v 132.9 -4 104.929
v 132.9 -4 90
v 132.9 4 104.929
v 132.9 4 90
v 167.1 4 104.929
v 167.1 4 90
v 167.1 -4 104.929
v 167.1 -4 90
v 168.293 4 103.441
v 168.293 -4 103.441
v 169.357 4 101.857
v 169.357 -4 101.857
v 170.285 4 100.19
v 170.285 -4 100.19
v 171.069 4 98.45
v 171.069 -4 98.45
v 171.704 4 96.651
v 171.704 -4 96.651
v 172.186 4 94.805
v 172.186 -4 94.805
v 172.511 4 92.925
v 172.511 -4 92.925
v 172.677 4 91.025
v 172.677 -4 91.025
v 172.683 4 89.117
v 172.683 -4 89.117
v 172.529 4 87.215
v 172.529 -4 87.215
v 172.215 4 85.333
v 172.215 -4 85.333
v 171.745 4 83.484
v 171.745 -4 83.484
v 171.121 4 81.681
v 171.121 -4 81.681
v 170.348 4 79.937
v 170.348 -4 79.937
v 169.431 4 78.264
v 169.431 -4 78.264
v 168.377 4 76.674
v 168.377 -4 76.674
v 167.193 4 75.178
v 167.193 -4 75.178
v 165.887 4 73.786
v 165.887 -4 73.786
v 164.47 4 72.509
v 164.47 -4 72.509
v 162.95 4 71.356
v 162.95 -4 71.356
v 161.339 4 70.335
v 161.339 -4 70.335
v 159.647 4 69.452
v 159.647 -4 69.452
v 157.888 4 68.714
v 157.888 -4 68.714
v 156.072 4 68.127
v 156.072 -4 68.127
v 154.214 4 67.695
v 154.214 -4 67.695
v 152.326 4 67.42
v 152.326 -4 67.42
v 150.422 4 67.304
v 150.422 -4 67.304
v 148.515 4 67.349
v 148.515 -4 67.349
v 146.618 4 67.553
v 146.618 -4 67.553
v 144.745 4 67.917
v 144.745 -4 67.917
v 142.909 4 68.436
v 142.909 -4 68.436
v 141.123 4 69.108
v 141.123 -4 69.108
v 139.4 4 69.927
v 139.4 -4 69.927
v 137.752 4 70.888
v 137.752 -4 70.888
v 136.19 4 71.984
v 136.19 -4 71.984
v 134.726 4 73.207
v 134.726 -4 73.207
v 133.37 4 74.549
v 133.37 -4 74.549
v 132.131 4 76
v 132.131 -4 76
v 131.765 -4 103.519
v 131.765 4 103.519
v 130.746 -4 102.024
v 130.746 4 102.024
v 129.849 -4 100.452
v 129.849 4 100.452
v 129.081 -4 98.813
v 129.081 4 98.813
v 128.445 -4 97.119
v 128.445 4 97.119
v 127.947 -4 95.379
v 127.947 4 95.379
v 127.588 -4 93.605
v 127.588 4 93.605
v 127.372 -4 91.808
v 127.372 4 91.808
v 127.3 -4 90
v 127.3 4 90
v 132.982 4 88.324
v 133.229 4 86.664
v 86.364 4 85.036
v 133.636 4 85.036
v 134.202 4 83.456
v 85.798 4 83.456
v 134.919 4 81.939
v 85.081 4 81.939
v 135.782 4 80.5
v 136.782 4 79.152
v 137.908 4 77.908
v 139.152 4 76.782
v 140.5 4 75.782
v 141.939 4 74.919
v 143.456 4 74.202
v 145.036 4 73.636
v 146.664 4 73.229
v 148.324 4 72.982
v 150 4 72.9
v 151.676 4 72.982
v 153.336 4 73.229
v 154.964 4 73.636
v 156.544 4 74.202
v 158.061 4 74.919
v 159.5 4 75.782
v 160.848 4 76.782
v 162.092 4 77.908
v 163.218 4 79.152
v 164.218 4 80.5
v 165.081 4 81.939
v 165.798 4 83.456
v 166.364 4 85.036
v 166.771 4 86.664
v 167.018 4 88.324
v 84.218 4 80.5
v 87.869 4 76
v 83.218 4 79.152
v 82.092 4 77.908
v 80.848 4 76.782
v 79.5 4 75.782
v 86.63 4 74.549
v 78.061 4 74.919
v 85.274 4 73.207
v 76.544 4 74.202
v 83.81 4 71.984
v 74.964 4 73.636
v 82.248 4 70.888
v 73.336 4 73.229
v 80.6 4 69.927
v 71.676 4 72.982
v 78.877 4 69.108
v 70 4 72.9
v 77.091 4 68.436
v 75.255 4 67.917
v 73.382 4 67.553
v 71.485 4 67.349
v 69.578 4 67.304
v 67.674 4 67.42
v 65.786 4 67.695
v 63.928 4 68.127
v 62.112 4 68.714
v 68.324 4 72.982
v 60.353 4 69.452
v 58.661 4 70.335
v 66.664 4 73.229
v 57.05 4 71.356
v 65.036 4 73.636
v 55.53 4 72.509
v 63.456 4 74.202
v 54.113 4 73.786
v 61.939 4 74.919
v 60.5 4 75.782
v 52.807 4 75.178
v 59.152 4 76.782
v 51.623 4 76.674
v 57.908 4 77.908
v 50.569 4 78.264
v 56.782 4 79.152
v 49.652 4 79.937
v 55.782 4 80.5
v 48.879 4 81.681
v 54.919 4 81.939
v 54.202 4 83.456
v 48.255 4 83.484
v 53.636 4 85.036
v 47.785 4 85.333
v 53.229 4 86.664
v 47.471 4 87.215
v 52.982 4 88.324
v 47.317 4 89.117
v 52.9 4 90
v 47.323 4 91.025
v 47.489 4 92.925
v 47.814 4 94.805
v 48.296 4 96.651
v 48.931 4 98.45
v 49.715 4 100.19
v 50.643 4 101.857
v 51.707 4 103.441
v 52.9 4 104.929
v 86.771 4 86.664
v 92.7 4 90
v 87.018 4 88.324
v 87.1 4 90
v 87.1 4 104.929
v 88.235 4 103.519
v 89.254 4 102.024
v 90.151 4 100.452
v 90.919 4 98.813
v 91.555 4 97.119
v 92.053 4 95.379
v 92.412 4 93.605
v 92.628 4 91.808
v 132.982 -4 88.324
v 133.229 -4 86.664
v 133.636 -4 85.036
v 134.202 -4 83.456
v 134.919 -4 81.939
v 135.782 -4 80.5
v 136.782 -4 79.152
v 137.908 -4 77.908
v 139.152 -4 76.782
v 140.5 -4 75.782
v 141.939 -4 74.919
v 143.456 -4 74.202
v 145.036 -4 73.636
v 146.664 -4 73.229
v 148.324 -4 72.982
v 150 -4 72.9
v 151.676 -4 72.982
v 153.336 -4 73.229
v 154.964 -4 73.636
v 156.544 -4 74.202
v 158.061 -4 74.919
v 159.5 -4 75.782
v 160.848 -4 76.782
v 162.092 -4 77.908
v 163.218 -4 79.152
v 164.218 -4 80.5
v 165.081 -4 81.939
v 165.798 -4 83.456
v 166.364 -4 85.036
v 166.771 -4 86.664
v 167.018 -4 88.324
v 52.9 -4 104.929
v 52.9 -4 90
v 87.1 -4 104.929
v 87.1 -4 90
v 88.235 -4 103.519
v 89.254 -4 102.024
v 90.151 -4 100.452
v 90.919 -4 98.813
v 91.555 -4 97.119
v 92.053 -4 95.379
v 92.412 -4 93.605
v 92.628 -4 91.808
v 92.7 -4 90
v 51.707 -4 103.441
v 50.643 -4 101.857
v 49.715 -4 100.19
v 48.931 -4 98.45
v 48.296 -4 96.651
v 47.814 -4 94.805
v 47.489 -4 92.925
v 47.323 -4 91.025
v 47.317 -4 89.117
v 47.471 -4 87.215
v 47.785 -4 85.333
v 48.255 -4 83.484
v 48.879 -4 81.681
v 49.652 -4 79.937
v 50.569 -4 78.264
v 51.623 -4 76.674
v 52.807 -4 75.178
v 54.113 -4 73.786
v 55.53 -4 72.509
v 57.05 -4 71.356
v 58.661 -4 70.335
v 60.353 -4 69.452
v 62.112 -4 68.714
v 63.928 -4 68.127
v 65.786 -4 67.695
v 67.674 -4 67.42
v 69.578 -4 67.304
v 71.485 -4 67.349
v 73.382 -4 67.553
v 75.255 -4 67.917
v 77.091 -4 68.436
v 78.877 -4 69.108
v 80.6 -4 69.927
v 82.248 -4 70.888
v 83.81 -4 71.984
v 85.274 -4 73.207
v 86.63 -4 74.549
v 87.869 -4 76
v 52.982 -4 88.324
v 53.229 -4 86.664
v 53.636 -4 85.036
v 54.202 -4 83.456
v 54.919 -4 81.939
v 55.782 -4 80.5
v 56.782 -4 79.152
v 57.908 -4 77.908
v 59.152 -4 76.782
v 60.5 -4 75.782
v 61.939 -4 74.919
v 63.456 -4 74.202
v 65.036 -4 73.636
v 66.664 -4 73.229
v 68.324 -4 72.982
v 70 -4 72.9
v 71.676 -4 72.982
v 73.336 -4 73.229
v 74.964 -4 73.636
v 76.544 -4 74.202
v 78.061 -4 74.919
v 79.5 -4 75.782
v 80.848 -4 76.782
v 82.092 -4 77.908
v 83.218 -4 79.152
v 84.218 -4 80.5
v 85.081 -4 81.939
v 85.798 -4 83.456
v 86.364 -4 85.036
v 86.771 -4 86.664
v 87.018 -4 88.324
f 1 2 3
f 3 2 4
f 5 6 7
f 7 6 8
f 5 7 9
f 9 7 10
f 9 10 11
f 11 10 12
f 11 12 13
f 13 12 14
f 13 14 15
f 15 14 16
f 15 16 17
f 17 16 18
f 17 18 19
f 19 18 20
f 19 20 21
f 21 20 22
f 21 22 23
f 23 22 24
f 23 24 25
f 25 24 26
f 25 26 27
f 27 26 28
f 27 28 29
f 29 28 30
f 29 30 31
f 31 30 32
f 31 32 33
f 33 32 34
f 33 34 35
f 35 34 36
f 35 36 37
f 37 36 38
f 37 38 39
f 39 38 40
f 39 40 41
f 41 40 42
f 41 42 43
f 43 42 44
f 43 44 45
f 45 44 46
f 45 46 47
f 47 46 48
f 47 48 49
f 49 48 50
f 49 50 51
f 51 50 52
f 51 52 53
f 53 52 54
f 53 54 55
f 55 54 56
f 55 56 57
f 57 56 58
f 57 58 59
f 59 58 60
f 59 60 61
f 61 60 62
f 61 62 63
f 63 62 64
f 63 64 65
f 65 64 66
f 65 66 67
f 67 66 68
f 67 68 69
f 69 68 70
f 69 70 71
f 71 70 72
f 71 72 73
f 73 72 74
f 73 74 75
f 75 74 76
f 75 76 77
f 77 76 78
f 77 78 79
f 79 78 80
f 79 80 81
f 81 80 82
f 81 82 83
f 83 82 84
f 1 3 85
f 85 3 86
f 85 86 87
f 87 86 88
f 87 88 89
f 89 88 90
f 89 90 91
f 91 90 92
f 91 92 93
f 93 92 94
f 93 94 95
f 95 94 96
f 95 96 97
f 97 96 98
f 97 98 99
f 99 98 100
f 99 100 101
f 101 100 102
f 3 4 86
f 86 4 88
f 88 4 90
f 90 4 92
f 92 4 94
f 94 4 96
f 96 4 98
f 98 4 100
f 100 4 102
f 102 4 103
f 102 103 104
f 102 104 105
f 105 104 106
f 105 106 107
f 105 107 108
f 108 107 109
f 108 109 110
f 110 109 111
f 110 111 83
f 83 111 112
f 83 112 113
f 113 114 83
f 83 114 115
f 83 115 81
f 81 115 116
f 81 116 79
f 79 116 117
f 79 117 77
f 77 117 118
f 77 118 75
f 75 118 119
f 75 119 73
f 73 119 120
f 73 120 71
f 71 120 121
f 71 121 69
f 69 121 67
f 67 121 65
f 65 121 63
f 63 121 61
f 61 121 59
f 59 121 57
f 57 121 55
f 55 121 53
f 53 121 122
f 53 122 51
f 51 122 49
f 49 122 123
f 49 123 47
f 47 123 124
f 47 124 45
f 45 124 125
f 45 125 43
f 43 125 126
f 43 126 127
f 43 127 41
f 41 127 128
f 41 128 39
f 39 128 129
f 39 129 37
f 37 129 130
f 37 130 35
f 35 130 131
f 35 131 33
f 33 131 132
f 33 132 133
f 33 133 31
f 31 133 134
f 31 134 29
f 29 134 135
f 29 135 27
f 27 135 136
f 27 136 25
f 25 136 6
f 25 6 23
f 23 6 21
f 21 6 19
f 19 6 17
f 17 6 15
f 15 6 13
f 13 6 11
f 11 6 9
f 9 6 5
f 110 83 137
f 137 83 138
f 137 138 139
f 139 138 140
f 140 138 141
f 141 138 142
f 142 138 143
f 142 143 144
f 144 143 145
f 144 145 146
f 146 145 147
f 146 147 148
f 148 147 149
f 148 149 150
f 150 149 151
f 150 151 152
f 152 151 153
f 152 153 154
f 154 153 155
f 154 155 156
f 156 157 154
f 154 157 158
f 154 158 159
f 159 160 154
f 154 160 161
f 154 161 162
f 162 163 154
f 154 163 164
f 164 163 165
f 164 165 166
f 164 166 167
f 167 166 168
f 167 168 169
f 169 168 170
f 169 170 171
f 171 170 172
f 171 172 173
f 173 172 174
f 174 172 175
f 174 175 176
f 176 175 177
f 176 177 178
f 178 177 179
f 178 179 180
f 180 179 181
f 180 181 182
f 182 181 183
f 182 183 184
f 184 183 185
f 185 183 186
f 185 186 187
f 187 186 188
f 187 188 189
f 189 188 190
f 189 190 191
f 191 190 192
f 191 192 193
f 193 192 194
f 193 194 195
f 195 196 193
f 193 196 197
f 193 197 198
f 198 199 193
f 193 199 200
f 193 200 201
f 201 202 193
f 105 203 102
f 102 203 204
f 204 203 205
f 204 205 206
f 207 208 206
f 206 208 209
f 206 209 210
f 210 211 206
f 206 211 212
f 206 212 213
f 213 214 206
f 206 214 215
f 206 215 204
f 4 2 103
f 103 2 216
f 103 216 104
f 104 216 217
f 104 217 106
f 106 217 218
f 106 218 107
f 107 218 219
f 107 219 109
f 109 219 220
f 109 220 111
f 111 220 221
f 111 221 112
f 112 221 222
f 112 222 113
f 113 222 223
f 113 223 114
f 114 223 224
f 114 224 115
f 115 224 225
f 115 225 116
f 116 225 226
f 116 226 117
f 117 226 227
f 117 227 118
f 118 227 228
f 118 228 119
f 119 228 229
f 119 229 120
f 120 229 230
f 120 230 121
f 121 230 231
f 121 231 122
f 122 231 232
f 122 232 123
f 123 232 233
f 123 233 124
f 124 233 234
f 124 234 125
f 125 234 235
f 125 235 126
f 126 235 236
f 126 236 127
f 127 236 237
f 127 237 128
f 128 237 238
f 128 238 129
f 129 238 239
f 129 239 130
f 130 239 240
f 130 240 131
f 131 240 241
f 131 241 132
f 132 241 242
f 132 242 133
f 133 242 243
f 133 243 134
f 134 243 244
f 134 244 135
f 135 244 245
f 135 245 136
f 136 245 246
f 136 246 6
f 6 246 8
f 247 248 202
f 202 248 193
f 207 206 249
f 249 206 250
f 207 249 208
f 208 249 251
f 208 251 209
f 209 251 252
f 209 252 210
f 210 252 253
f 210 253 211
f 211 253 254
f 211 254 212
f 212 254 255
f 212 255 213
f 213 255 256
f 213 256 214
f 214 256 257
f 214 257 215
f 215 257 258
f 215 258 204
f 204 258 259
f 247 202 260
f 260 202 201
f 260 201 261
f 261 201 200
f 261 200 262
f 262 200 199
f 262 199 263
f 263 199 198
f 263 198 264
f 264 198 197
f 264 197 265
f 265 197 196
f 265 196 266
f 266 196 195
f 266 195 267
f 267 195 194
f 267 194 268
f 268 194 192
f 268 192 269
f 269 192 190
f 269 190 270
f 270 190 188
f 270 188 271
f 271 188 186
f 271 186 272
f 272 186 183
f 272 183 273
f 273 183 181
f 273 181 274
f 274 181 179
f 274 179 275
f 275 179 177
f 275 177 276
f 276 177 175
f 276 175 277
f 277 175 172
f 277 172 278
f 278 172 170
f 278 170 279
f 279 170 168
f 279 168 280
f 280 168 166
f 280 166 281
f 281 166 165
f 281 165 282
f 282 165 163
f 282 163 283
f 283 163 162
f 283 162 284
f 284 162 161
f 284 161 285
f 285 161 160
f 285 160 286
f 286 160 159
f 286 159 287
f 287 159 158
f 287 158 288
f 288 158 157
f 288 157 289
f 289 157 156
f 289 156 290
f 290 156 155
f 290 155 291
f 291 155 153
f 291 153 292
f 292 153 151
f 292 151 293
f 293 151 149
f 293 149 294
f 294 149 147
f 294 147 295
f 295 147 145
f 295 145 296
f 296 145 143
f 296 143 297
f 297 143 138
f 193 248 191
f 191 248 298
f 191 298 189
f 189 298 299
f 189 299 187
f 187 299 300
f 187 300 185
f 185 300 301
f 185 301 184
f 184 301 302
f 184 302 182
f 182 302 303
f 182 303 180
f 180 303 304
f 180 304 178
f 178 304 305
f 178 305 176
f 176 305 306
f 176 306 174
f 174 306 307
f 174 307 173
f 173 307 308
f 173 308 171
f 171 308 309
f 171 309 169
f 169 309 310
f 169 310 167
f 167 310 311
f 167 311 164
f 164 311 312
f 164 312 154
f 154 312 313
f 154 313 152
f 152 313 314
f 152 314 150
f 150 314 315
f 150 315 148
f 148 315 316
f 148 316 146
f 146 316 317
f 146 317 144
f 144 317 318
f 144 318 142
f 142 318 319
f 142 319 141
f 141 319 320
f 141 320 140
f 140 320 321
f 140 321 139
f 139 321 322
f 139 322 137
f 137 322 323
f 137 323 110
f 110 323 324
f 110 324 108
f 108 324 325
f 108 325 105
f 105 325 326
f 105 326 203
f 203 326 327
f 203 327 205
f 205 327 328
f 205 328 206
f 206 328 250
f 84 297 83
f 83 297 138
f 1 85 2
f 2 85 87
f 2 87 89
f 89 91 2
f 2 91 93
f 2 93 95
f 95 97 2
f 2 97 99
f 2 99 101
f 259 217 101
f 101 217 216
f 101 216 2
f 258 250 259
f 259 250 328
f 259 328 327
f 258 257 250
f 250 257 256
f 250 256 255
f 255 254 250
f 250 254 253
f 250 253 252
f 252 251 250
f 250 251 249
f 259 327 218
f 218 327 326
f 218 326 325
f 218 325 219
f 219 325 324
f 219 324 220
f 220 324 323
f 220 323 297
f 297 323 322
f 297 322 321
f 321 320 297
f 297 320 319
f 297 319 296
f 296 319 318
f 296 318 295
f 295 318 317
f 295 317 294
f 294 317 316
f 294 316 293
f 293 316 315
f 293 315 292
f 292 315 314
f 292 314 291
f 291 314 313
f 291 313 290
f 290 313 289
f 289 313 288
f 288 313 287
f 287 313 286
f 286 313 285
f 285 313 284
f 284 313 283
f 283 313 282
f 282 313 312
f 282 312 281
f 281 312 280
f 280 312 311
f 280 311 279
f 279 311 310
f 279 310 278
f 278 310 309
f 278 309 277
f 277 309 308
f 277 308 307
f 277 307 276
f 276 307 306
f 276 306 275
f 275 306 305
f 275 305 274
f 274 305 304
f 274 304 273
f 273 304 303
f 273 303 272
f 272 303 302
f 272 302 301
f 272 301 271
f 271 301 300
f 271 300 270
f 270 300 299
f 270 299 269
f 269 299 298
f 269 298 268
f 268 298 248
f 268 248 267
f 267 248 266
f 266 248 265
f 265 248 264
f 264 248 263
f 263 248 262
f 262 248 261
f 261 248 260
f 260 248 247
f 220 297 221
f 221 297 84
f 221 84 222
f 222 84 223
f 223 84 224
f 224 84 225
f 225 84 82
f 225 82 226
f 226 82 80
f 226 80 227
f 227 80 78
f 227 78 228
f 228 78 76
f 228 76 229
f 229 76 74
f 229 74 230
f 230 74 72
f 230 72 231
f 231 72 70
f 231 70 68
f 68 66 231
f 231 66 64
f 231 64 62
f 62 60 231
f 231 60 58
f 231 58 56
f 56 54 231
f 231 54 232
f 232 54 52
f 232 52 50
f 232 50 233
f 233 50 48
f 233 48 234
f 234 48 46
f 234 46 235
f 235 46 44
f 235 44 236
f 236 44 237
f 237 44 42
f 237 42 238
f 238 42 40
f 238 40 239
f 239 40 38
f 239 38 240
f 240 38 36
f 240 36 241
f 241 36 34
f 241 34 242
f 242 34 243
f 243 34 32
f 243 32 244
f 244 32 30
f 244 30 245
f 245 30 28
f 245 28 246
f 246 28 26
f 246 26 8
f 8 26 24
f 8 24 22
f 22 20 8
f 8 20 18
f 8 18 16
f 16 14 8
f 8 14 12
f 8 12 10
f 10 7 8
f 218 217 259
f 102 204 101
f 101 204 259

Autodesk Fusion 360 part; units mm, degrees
sketch "Coupon chord" plane through (0, 0, 0) normal (0, 1, 0) x (1, 0, 0)
  line L0 (70, -76) -> (150, -76)
  line L1 (150, -76) -> (150, -90)
  line L2 (150, -90) -> (70, -90)
  line L3 (70, -90) -> (70, -76)
  dimension "d52" = 70
  dimension "d53" = 76
  dimension "d55" = 90
extrude "Coupon chord (1)" add sketch "Coupon chord" along normal mid plane 8
sketch "Saddle boss x=70" plane through (0, 0, 0) normal (0, 1, 0) x (1, 0, 0)
  circle A0 centre (70, -90) radius 22.7
  dimension "d58" = 70
  dimension "d59" = 90
  dimension "d60" = 45.4
extrude "Saddle boss x=70 (1)" add sketch "Saddle boss x=70" along normal mid plane 8
sketch "Saddle boss x=150" plane through (0, 0, 0) normal (0, 1, 0) x (1, 0, 0)
  circle A0 centre (150, -90) radius 22.7
  dimension "d64" = 90
  dimension "d65" = 45.4
extrude "Saddle boss x=150 (1)" add sketch "Saddle boss x=150" along normal mid plane 8
sketch "Rod pocket x=70" plane through (0, 0, 0) normal (0, 1, 0) x (1, 0, 0)
  circle A0 centre (70, -90) radius 17.1
  dimension "d68" = 70
  dimension "d69" = 90
  dimension "d70" = 34.2
extrude "Rod pocket x=70 (1)" cut sketch "Rod pocket x=70" along normal mid plane 18
sketch "Drop-in opening x=70" plane through (0, 0, 0) normal (0, 1, 0) x (1, 0, 0)
  line L0 (52.9, -90) -> (87.1, -90)
  line L1 (87.1, -90) -> (87.1, -117.7)
  line L2 (87.1, -117.7) -> (52.9, -117.7)
  line L3 (52.9, -117.7) -> (52.9, -90)
  dimension "d73" = 52.9
  dimension "d74" = 90
  dimension "d75" = 87.1
  dimension "d76" = 117.7
extrude "Drop-in opening x=70 (1)" cut sketch "Drop-in opening x=70" along normal mid plane 18
sketch "Rod pocket x=150" plane through (0, 0, 0) normal (0, 1, 0) x (1, 0, 0)
  circle A0 centre (150, -90) radius 17.1
  dimension "d80" = 90
  dimension "d81" = 34.2
extrude "Rod pocket x=150 (1)" cut sketch "Rod pocket x=150" along normal mid plane 18
sketch "Drop-in opening x=150" plane through (0, 0, 0) normal (0, 1, 0) x (1, 0, 0)
  line L0 (132.9, -90) -> (167.1, -90)
  line L1 (167.1, -90) -> (167.1, -117.7)
  line L2 (167.1, -117.7) -> (132.9, -117.7)
  line L3 (132.9, -117.7) -> (132.9, -90)
  dimension "d84" = 132.9
  dimension "d85" = 90
  dimension "d86" = 167.1
  dimension "d87" = 117.7
extrude "Drop-in opening x=150 (1)" cut sketch "Drop-in opening x=150" along normal mid plane 18
equation "couponWidth = 8.0 mm" comment "coupon slice width"
equation "plateHeight = 90.0 mm" comment "rod height, as the bracket"
equation "rodOuterDiameter = 33.4 mm" comment "1 inch sch 40 PVC"
equation "saddleClearance = 0.8 mm" comment "diametral pocket clearance"
equation "saddleWall = 6.0 mm" comment "wall around the rod pocket"
equation "rearRodStandoff = 70.0 mm" comment "rear rod, from the upright"
equation "rodSpacing = 80.0 mm" comment "rod centres, front minus rear"
equation "memberWidth = 14.0 mm" comment "chord depth joining the saddles"
equation "d52 = rearRodStandoff"
equation "d53 = plateHeight - memberWidth"
equation "d54 = ( rearRodStandoff + rodSpacing )"
equation "d55 = plateHeight"
equation "d56 = couponWidth"
equation "d58 = rearRodStandoff"
equation "d59 = plateHeight"
equation "d60 = rodOuterDiameter + 2 * saddleWall"
equation "d61 = couponWidth"
equation "d63 = ( rearRodStandoff + rodSpacing )"
equation "d64 = plateHeight"
equation "d65 = rodOuterDiameter + 2 * saddleWall"
equation "d66 = couponWidth"
equation "d68 = rearRodStandoff"
equation "d69 = plateHeight"
equation "d70 = rodOuterDiameter + saddleClearance"
equation "d71 = couponWidth + 10 mm"
equation "d73 = rearRodStandoff - ( rodOuterDiameter + saddleClearance ) / 2"
equation "d74 = plateHeight"
equation "d75 = rearRodStandoff + ( rodOuterDiameter + saddleClearance ) / 2"
equation "d76 = plateHeight + ( rodOuterDiameter + 2 * saddleWall ) / 2 + 5 mm"
equation "d77 = couponWidth + 10 mm"
equation "d79 = ( rearRodStandoff + rodSpacing )"
equation "d80 = plateHeight"
equation "d81 = rodOuterDiameter + saddleClearance"
equation "d82 = couponWidth + 10 mm"
equation "d84 = ( rearRodStandoff + rodSpacing ) - ( rodOuterDiameter + saddleClearance ) / 2"
equation "d85 = plateHeight"
equation "d86 = ( rearRodStandoff + rodSpacing ) + ( rodOuterDiameter + saddleClearance ) / 2"
equation "d87 = plateHeight + ( rodOuterDiameter + 2 * saddleWall ) / 2 + 5 mm"
equation "d88 = couponWidth + 10 mm"
